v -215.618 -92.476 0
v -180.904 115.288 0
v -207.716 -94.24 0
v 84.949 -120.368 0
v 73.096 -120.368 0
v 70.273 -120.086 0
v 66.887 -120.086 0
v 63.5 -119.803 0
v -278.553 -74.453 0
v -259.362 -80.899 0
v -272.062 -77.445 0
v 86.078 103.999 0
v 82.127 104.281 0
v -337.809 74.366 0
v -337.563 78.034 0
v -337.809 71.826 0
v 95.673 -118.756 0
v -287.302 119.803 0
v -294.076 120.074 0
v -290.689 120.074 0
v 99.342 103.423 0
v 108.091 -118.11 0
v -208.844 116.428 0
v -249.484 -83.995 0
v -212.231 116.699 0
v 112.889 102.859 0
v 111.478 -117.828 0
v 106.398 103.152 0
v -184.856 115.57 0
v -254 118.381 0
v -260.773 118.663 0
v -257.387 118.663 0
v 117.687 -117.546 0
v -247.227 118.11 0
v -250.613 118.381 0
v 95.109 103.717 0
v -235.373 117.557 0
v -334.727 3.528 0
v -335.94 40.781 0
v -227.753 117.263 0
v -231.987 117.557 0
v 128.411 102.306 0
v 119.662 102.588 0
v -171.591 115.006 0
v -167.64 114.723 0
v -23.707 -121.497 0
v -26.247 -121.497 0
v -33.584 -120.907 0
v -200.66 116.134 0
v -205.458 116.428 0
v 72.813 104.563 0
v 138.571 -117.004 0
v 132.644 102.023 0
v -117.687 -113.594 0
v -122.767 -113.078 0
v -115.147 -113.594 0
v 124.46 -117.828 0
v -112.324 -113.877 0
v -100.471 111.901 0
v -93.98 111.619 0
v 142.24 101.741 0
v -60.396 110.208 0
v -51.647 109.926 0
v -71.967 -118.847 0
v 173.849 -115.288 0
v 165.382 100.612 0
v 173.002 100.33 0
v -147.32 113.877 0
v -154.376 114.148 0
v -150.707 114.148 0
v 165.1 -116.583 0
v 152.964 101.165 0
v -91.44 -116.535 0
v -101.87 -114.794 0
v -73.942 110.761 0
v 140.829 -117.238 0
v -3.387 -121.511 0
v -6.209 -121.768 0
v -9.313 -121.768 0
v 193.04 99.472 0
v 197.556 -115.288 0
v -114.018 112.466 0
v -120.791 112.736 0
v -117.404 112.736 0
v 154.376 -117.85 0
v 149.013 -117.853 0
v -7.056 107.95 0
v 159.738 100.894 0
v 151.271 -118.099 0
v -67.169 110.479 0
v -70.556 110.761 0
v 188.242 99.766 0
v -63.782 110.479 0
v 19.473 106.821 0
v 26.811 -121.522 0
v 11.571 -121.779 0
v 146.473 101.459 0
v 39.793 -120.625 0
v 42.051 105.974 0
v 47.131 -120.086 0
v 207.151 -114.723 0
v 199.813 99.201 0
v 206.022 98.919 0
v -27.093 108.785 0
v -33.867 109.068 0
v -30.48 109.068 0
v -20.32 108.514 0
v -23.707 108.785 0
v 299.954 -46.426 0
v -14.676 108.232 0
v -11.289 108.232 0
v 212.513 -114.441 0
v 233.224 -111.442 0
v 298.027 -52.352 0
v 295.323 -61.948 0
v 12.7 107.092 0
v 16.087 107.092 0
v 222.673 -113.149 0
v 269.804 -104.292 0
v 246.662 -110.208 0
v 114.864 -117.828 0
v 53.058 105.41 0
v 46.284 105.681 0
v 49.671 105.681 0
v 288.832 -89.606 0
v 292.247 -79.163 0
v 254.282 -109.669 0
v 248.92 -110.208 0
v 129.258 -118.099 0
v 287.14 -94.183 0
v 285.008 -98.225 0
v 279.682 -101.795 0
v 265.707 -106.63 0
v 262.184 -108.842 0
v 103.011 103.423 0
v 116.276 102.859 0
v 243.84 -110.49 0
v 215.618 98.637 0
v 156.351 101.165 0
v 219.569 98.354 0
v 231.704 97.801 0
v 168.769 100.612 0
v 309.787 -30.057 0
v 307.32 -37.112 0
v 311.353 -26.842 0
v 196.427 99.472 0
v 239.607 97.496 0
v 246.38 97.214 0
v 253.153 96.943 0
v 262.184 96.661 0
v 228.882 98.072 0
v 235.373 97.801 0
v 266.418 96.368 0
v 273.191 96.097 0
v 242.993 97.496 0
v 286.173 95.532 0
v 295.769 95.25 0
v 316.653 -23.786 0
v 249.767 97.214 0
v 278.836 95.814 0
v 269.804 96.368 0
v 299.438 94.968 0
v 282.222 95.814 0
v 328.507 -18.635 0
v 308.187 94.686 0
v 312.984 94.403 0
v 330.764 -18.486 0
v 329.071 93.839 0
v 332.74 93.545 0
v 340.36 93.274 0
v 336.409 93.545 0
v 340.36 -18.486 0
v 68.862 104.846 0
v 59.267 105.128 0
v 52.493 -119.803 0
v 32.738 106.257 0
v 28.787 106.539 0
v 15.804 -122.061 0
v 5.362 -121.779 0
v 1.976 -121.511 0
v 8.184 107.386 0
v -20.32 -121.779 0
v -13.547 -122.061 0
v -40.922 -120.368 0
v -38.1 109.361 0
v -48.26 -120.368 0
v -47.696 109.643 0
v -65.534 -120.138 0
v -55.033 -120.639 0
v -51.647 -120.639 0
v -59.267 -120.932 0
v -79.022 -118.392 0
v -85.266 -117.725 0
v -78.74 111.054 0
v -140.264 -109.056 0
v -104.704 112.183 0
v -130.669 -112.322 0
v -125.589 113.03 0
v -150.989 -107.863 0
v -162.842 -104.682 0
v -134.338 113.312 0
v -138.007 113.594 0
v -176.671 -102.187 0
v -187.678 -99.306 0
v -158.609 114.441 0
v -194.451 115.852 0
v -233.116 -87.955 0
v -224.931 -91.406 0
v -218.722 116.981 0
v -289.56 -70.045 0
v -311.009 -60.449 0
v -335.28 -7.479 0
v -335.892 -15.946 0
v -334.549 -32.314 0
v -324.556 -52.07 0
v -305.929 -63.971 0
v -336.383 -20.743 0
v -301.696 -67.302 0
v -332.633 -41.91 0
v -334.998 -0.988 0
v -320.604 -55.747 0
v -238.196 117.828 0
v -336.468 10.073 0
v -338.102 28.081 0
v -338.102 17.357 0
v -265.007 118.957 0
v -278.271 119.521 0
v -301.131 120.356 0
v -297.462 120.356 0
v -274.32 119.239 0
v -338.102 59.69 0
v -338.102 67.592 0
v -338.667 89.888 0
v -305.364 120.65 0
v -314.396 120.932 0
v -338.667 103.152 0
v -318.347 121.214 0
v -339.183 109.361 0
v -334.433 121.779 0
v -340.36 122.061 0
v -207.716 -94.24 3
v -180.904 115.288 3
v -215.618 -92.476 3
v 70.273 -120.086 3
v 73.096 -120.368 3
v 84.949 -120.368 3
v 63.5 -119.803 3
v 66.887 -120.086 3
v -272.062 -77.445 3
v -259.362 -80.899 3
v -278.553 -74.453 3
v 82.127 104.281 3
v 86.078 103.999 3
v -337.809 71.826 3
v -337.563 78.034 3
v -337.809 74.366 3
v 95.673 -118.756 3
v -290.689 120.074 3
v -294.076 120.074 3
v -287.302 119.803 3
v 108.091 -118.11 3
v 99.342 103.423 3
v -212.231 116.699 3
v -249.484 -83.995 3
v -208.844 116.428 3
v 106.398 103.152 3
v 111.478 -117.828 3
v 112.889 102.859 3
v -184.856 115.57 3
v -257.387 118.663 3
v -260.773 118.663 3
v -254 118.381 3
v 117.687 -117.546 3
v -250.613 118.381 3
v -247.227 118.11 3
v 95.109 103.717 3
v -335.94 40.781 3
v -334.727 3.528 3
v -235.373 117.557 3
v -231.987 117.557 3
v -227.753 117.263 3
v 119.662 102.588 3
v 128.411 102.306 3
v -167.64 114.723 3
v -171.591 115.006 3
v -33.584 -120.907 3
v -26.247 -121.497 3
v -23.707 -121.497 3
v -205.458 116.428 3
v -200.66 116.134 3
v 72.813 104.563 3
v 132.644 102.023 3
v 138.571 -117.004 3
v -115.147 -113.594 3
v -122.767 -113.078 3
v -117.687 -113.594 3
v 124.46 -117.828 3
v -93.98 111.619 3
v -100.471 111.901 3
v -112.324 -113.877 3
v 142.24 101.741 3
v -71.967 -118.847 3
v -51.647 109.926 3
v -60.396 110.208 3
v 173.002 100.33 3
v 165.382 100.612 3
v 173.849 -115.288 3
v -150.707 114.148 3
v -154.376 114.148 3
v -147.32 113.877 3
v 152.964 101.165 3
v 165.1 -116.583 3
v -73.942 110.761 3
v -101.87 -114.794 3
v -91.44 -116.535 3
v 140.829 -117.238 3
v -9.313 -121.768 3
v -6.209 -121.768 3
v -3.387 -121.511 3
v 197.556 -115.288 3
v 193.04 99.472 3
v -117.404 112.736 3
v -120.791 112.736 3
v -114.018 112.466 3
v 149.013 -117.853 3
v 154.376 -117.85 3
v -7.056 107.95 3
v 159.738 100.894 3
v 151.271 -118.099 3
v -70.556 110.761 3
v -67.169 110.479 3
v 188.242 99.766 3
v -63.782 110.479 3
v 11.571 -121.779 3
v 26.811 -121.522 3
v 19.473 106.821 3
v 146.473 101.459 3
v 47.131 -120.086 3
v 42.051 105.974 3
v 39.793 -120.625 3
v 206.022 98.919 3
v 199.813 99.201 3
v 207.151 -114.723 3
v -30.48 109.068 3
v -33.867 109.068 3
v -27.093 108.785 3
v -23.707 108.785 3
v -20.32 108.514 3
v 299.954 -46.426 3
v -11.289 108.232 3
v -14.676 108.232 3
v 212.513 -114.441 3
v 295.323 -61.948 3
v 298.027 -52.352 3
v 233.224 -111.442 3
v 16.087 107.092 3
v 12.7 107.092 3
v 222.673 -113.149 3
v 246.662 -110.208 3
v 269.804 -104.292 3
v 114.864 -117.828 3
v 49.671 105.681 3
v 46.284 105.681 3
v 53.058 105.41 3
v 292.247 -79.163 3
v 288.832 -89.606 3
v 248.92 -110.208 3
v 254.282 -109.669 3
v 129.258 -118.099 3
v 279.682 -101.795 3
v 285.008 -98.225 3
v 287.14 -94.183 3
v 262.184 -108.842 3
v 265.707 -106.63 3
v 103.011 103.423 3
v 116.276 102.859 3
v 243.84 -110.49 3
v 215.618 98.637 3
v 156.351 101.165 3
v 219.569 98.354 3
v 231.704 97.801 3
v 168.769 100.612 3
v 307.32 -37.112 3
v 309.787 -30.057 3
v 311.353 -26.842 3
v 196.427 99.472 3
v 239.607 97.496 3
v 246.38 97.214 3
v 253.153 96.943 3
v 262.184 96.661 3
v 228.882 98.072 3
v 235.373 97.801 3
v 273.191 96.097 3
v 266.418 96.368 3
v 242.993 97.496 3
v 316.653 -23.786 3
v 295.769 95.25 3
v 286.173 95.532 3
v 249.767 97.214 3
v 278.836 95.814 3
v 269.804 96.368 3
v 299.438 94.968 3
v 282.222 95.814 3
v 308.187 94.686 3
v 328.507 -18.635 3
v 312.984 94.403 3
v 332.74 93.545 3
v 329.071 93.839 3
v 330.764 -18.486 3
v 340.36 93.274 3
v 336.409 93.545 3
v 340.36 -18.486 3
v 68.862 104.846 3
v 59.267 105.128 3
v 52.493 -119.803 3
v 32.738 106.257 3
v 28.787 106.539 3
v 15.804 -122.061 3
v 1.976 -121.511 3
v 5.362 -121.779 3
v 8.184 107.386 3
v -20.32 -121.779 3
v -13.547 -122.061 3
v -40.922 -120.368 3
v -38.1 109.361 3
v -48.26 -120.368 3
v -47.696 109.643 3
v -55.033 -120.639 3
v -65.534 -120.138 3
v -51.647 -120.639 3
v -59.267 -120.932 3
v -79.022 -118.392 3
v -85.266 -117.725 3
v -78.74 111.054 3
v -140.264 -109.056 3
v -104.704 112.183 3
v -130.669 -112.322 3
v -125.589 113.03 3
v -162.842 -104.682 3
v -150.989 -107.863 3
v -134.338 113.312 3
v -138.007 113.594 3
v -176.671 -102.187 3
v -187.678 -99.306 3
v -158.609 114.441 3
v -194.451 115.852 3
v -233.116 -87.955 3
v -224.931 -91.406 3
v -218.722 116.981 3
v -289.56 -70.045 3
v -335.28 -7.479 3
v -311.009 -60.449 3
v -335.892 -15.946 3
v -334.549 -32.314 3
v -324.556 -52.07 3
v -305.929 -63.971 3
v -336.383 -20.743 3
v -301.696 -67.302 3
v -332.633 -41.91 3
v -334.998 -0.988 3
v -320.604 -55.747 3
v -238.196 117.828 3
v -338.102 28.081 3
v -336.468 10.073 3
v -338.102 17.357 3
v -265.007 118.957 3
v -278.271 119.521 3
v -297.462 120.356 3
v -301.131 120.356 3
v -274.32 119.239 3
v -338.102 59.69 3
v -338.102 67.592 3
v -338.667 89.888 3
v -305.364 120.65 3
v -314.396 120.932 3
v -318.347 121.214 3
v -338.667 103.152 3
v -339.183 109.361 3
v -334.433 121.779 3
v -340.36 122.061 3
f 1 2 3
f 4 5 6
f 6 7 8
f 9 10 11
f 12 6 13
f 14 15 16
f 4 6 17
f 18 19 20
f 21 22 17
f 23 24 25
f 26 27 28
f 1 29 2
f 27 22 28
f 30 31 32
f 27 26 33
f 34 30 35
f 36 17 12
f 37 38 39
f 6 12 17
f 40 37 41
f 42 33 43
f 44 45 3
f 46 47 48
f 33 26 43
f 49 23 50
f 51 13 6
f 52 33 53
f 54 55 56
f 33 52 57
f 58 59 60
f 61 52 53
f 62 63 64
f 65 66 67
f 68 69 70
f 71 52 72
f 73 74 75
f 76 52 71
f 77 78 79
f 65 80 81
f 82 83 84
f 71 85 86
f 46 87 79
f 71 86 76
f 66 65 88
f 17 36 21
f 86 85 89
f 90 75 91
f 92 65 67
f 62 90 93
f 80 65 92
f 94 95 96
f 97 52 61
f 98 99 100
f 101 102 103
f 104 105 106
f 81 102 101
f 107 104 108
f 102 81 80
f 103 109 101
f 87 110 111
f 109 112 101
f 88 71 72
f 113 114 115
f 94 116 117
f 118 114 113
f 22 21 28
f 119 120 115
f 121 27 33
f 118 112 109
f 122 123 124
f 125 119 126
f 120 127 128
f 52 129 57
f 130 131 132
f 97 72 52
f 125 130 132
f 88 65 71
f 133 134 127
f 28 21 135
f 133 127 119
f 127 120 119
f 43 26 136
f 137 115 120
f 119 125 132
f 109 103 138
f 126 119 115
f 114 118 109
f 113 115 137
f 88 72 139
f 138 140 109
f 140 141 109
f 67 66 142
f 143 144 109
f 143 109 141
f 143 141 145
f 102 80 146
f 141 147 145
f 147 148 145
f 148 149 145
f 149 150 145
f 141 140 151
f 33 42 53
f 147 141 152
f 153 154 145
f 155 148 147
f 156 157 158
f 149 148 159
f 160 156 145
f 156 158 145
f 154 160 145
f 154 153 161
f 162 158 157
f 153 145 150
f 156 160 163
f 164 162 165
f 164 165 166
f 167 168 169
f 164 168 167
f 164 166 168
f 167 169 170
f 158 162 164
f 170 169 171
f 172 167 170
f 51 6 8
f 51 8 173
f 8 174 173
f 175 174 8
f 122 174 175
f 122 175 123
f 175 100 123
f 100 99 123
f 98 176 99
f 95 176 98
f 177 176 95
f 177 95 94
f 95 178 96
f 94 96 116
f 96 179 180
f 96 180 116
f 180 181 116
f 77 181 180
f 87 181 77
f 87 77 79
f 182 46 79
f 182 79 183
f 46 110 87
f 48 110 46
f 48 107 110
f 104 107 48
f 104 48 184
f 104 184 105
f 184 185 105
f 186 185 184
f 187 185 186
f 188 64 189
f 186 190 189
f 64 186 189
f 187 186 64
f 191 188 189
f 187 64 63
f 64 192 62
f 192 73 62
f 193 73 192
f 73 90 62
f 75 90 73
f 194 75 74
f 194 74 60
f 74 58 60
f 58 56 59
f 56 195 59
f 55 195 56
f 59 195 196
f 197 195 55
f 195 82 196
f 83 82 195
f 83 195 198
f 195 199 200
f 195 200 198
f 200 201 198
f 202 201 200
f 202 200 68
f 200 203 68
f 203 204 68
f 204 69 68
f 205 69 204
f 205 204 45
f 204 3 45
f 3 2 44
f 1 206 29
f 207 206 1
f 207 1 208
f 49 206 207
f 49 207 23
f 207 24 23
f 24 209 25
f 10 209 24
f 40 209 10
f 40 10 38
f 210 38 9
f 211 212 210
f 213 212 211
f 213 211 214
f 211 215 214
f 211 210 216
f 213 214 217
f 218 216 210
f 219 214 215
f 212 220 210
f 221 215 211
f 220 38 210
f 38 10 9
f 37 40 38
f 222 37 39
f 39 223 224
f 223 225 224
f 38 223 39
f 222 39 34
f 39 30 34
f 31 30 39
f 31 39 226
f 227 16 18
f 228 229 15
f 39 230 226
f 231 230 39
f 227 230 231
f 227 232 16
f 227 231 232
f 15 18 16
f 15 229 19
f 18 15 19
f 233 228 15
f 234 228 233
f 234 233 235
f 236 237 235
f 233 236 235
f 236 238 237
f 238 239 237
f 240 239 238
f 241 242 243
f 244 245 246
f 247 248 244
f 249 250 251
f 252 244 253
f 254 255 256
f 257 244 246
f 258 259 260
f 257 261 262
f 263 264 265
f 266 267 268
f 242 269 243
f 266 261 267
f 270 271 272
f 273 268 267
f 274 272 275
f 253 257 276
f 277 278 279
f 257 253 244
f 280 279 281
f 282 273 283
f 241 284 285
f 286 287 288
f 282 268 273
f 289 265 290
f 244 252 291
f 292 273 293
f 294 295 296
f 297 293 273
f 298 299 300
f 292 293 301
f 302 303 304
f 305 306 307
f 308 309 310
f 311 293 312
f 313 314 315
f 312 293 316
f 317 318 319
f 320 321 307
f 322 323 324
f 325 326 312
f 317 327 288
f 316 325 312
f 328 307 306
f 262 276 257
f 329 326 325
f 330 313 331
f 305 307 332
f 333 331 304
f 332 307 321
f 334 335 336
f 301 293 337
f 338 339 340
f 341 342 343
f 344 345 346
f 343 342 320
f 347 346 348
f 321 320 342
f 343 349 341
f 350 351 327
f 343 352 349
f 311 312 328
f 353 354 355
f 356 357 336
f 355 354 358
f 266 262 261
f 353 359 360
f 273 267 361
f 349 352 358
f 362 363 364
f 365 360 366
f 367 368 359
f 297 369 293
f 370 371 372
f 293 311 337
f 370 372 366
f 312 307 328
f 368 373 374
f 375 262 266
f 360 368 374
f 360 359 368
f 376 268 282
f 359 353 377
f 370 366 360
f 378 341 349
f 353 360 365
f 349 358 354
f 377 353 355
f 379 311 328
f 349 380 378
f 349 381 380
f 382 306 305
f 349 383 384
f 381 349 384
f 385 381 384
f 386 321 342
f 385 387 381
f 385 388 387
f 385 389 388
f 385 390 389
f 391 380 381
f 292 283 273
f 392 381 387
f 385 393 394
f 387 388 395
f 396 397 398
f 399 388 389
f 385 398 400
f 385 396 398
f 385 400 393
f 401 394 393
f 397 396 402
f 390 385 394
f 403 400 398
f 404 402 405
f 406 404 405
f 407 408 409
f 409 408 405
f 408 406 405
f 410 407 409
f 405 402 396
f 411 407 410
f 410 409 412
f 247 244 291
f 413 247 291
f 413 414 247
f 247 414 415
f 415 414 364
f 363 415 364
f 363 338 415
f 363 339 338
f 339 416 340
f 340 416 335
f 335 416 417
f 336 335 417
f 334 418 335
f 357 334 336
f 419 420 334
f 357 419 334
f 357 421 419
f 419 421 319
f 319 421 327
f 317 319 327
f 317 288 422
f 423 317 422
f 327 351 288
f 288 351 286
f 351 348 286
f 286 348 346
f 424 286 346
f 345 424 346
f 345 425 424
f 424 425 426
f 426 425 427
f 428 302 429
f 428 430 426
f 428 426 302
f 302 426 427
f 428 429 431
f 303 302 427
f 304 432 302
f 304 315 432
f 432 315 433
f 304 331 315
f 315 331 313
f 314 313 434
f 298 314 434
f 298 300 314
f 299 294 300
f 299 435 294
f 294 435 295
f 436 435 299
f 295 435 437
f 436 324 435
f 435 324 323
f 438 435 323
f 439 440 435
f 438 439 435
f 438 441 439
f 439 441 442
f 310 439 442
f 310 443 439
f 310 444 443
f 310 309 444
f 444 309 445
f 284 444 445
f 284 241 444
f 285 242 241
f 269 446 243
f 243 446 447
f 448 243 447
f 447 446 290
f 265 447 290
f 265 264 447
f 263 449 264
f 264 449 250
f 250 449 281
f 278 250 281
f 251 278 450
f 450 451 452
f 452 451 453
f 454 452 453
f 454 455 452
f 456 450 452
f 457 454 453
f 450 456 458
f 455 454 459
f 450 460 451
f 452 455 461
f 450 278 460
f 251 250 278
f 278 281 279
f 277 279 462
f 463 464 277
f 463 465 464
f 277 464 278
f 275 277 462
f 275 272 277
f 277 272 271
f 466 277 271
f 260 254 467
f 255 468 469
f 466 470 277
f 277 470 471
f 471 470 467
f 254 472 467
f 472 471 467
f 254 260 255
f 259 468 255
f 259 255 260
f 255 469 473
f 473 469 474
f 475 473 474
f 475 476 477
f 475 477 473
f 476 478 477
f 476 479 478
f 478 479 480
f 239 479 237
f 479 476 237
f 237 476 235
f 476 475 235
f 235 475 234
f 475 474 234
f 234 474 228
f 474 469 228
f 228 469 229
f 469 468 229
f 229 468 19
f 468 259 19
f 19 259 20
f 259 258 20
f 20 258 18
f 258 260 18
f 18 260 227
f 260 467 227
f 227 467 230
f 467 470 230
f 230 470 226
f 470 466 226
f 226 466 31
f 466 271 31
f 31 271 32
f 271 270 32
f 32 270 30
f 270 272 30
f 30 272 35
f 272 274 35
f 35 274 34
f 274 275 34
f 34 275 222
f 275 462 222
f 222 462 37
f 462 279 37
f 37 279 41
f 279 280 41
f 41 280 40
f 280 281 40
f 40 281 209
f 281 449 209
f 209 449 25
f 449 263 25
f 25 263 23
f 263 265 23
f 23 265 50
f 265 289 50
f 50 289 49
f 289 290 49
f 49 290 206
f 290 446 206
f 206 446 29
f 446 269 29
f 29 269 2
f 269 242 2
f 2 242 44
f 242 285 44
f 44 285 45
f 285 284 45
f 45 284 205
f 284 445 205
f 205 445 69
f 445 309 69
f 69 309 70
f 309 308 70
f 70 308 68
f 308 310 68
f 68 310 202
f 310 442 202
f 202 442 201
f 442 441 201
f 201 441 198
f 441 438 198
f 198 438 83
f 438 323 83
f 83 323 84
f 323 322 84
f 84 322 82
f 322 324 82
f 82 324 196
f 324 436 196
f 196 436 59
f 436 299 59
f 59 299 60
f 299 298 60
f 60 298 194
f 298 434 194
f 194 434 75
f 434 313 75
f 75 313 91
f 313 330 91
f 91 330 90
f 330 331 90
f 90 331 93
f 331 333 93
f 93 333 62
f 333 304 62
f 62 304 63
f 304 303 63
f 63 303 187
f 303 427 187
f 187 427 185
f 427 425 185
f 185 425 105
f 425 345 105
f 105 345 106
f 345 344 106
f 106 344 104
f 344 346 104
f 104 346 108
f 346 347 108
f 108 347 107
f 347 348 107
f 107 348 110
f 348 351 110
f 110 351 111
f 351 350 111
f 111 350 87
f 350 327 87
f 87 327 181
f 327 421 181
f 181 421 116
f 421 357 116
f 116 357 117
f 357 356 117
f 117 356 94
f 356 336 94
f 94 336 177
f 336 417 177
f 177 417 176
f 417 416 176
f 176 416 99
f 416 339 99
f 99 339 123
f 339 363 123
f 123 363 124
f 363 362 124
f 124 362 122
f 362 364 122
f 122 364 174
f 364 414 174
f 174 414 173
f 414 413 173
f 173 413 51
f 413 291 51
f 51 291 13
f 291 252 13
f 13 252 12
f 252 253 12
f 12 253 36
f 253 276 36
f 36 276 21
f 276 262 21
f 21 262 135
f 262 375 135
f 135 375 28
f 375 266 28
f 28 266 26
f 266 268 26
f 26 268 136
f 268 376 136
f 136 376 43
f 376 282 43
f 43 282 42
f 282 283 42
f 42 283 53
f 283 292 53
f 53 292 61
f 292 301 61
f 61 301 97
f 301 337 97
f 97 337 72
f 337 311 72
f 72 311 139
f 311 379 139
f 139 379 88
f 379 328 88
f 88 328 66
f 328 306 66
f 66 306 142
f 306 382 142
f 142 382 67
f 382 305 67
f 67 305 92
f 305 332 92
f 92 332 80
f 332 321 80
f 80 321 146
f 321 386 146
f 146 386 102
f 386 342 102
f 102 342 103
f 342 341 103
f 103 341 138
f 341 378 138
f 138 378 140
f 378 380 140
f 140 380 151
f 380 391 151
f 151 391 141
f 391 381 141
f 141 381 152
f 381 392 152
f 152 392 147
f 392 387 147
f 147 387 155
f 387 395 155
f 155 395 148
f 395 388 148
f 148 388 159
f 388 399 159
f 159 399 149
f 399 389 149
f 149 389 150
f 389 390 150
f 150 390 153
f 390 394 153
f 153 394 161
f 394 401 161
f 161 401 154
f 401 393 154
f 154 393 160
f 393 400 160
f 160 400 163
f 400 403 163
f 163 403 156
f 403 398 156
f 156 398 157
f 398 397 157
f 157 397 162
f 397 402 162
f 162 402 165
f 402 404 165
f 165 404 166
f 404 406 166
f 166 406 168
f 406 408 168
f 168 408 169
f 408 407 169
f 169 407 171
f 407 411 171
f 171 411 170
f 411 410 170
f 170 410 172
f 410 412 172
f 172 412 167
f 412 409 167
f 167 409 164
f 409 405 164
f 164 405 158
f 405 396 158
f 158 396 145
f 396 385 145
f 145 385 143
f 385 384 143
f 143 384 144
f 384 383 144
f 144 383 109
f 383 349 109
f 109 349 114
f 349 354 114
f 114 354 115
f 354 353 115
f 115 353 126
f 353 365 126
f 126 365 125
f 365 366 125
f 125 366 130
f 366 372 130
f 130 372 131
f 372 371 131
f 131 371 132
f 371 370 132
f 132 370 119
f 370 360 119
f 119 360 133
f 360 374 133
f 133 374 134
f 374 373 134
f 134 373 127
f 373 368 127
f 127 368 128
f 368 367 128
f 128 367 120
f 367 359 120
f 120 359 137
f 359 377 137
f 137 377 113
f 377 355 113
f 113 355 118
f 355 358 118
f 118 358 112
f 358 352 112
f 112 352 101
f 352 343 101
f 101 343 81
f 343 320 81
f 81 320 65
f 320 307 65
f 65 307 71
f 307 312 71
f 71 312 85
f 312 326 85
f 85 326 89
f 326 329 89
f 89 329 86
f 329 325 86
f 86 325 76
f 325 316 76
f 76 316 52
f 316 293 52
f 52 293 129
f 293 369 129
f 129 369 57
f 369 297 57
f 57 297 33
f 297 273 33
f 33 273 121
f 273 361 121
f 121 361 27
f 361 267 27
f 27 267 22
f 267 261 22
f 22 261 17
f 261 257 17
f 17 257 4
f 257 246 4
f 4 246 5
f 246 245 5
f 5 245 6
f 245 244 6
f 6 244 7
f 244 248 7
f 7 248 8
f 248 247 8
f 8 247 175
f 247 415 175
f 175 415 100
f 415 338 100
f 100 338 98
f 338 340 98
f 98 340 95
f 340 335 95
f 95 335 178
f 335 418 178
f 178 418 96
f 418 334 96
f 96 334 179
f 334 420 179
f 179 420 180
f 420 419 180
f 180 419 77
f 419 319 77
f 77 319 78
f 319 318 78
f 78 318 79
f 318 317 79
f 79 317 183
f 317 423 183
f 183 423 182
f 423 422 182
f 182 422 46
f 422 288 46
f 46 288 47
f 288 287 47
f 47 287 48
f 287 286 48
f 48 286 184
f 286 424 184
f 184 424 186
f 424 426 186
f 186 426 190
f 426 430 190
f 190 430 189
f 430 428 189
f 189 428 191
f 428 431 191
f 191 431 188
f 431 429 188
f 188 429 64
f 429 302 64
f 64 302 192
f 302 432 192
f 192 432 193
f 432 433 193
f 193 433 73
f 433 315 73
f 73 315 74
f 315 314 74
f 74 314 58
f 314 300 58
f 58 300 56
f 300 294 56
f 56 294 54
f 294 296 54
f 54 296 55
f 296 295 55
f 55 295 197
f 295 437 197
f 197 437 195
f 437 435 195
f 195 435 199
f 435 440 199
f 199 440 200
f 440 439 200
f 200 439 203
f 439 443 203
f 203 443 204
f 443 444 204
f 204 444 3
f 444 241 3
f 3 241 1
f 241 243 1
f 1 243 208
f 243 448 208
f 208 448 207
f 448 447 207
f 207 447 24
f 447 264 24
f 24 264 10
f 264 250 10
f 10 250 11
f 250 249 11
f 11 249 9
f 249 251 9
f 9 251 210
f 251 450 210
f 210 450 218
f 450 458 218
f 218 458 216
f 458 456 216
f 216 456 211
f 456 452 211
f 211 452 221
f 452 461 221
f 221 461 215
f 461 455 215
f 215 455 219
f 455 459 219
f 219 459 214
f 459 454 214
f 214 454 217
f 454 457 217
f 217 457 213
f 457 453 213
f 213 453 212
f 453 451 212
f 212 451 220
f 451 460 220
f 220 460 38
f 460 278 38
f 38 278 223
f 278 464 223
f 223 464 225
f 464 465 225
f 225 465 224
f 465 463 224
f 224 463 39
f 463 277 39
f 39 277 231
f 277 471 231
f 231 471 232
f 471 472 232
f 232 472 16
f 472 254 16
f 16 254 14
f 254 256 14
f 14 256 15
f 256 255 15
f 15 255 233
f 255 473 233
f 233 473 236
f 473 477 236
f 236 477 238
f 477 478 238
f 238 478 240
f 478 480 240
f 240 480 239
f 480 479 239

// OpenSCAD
// Module names are of the form poly_<inkscape-path-id>().  As a result,
// you can associate a polygon in this OpenSCAD program with the corresponding
// SVG element in the Inkscape document by looking for the XML element with
// the attribute id="inkscape-path-id".

// fudge value is used to ensure that subtracted solids are a tad taller
// in the z dimension than the polygon being subtracted from.  This helps
// keep the resulting .stl file manifold.
fudge = 0.1;

module poly_Selection(h)
{
  scale([25.4/90, -25.4/90, 1]) union()
  {
    linear_extrude(height=h)
      polygon([[-1206.000000,-432.500000],[-1201.830000,-387.500000],[-1200.000000,-365.500000],[-1200.000000,-318.500000],[-1196.090000,-276.500000],[-1196.960000,-263.500000],[-1196.960000,-254.500000],[-1198.000000,-239.500000],[-1198.000000,-211.500000],[-1190.340000,-144.500000],[-1198.000000,-99.500000],[-1198.000000,-61.500000],[-1192.211250,-35.691250],[-1186.040000,-12.500000],[-1187.000000,3.500000],[-1188.000000,26.500000],[-1190.170000,56.500000],[-1191.910000,73.500000],[-1185.410000,114.500000],[-1178.620000,148.500000],[-1150.000000,184.500000],[-1136.000000,197.530000],[-1102.000000,214.190000],[-1084.000000,226.670000],[-1069.000000,238.470000],[-1026.000000,248.190000],[-987.000000,263.810000],[-964.000000,274.410000],[-919.000000,286.650000],[-884.000000,297.620000],[-826.000000,311.650000],[-797.000000,323.880000],[-764.000000,327.670000],[-736.000000,333.920000],[-665.000000,351.870000],[-626.000000,362.080000],[-577.000000,370.920000],[-535.000000,382.190000],[-497.000000,386.420000],[-463.000000,397.990000],[-435.000000,400.670000],[-417.000000,402.500000],[-408.000000,402.500000],[-398.000000,403.500000],[-360.955000,406.751250],[-324.000000,412.920000],[-302.123750,417.136250],[-280.000000,419.500000],[-255.000000,421.110000],[-232.207500,425.686250],[-210.000000,428.500000],[-195.000000,427.460000],[-183.000000,427.460000],[-171.000000,426.500000],[-145.000000,426.500000],[-119.000000,428.410000],[-93.000000,430.500000],[-84.000000,430.500000],[-72.000000,431.500000],[-48.000000,432.500000],[-33.000000,431.460000],[-22.000000,431.460000],[-12.000000,430.550000],[7.000000,430.550000],[19.000000,431.500000],[41.000000,431.500000],[56.000000,432.500000],[95.000000,430.590000],[141.000000,427.410000],[167.000000,425.500000],[186.000000,424.500000],[225.000000,424.500000],[237.000000,425.500000],[249.000000,425.500000],[259.000000,426.500000],[301.000000,426.500000],[339.000000,420.790000],[383.000000,418.500000],[395.000000,417.500000],[407.000000,417.500000],[417.000000,416.500000],[441.000000,417.500000],[458.000000,418.460000],[491.000000,414.580000],[499.000000,415.410000],[528.000000,417.590000],[536.000000,418.460000],[547.000000,417.580000],[585.000000,413.090000],[616.000000,408.500000],[700.000000,408.500000],[734.000000,406.500000],[753.000000,405.500000],[789.000000,400.920000],[826.383750,394.875000],[864.000000,391.500000],[874.000000,390.500000],[882.000000,390.500000],[901.000000,388.590000],[929.000000,385.660000],[941.480000,377.821250],[956.000000,369.540000],[991.000000,360.690000],[1009.870000,348.040000],[1017.425000,333.718750],[1023.420000,317.500000],[1035.520000,280.500000],[1046.420000,219.500000],[1056.000000,185.500000],[1062.830000,164.500000],[1088.930000,131.500000],[1097.670000,106.500000],[1103.220000,95.110000],[1122.000000,84.280000],[1164.000000,66.030000],[1172.000000,65.500000],[1206.000000,65.500000],[1206.000000,-330.500000],[1192.000000,-331.460000],[1179.000000,-331.460000],[1166.000000,-332.500000],[1109.000000,-334.500000],[1092.000000,-335.500000],[1061.000000,-336.500000],[1048.000000,-337.500000],[1014.000000,-338.500000],[1000.000000,-339.500000],[988.000000,-339.500000],[968.000000,-340.500000],[956.000000,-341.460000],[944.000000,-341.460000],[929.000000,-342.500000],[897.000000,-343.500000],[885.000000,-344.460000],[873.000000,-344.460000],[861.000000,-345.460000],[849.000000,-345.460000],[834.000000,-346.540000],[821.000000,-346.540000],[811.000000,-347.500000],[778.000000,-348.500000],[764.000000,-349.500000],[730.000000,-350.500000],[708.000000,-351.500000],[696.000000,-352.460000],[684.000000,-352.460000],[667.000000,-353.500000],[613.000000,-355.500000],[598.000000,-356.500000],[586.000000,-356.500000],[566.000000,-357.500000],[554.000000,-358.460000],[542.000000,-358.460000],[519.000000,-359.500000],[504.000000,-360.500000],[470.000000,-361.500000],[455.000000,-362.500000],[424.000000,-363.500000],[412.000000,-364.460000],[400.000000,-364.460000],[377.000000,-365.500000],[365.000000,-366.460000],[352.000000,-366.460000],[337.000000,-367.500000],[305.000000,-368.500000],[291.000000,-369.500000],[258.000000,-370.500000],[244.000000,-371.500000],[210.000000,-372.500000],[188.000000,-373.500000],[176.000000,-374.460000],[164.000000,-374.460000],[149.000000,-375.500000],[116.000000,-376.500000],[102.000000,-377.500000],[69.000000,-378.500000],[57.000000,-379.460000],[45.000000,-379.460000],[29.000000,-380.500000],[-25.000000,-382.500000],[-40.000000,-383.500000],[-52.000000,-383.500000],[-72.000000,-384.500000],[-84.000000,-385.460000],[-96.000000,-385.460000],[-108.000000,-386.460000],[-120.000000,-386.460000],[-135.000000,-387.500000],[-169.000000,-388.500000],[-183.000000,-389.500000],[-214.000000,-390.500000],[-226.000000,-391.460000],[-238.000000,-391.460000],[-250.000000,-392.460000],[-262.000000,-392.460000],[-279.000000,-393.500000],[-333.000000,-395.500000],[-356.000000,-396.500000],[-371.000000,-397.500000],[-404.000000,-398.500000],[-416.000000,-399.460000],[-428.000000,-399.460000],[-445.000000,-400.500000],[-476.000000,-401.500000],[-489.000000,-402.500000],[-522.000000,-403.500000],[-534.000000,-404.460000],[-547.000000,-404.460000],[-562.000000,-405.500000],[-594.000000,-406.500000],[-608.000000,-407.500000],[-641.000000,-408.500000],[-655.000000,-409.500000],[-689.000000,-410.500000],[-711.000000,-411.500000],[-728.000000,-412.540000],[-740.000000,-412.540000],[-752.000000,-413.500000],[-775.000000,-414.500000],[-807.000000,-415.500000],[-822.000000,-416.540000],[-834.000000,-416.540000],[-844.000000,-417.500000],[-876.000000,-418.500000],[-888.000000,-419.460000],[-900.000000,-419.460000],[-912.000000,-420.460000],[-924.000000,-420.460000],[-939.000000,-421.500000],[-972.000000,-422.500000],[-986.000000,-423.500000],[-1018.000000,-424.500000],[-1030.000000,-425.460000],[-1042.000000,-425.460000],[-1054.000000,-426.460000],[-1067.000000,-426.460000],[-1082.000000,-427.500000],[-1114.000000,-428.500000],[-1128.000000,-429.500000],[-1185.000000,-431.500000],[-1206.000000,-432.500000]]);
  }
}

module inkscape(h)
{

poly_Selection(h);
}

inkscape(3);
